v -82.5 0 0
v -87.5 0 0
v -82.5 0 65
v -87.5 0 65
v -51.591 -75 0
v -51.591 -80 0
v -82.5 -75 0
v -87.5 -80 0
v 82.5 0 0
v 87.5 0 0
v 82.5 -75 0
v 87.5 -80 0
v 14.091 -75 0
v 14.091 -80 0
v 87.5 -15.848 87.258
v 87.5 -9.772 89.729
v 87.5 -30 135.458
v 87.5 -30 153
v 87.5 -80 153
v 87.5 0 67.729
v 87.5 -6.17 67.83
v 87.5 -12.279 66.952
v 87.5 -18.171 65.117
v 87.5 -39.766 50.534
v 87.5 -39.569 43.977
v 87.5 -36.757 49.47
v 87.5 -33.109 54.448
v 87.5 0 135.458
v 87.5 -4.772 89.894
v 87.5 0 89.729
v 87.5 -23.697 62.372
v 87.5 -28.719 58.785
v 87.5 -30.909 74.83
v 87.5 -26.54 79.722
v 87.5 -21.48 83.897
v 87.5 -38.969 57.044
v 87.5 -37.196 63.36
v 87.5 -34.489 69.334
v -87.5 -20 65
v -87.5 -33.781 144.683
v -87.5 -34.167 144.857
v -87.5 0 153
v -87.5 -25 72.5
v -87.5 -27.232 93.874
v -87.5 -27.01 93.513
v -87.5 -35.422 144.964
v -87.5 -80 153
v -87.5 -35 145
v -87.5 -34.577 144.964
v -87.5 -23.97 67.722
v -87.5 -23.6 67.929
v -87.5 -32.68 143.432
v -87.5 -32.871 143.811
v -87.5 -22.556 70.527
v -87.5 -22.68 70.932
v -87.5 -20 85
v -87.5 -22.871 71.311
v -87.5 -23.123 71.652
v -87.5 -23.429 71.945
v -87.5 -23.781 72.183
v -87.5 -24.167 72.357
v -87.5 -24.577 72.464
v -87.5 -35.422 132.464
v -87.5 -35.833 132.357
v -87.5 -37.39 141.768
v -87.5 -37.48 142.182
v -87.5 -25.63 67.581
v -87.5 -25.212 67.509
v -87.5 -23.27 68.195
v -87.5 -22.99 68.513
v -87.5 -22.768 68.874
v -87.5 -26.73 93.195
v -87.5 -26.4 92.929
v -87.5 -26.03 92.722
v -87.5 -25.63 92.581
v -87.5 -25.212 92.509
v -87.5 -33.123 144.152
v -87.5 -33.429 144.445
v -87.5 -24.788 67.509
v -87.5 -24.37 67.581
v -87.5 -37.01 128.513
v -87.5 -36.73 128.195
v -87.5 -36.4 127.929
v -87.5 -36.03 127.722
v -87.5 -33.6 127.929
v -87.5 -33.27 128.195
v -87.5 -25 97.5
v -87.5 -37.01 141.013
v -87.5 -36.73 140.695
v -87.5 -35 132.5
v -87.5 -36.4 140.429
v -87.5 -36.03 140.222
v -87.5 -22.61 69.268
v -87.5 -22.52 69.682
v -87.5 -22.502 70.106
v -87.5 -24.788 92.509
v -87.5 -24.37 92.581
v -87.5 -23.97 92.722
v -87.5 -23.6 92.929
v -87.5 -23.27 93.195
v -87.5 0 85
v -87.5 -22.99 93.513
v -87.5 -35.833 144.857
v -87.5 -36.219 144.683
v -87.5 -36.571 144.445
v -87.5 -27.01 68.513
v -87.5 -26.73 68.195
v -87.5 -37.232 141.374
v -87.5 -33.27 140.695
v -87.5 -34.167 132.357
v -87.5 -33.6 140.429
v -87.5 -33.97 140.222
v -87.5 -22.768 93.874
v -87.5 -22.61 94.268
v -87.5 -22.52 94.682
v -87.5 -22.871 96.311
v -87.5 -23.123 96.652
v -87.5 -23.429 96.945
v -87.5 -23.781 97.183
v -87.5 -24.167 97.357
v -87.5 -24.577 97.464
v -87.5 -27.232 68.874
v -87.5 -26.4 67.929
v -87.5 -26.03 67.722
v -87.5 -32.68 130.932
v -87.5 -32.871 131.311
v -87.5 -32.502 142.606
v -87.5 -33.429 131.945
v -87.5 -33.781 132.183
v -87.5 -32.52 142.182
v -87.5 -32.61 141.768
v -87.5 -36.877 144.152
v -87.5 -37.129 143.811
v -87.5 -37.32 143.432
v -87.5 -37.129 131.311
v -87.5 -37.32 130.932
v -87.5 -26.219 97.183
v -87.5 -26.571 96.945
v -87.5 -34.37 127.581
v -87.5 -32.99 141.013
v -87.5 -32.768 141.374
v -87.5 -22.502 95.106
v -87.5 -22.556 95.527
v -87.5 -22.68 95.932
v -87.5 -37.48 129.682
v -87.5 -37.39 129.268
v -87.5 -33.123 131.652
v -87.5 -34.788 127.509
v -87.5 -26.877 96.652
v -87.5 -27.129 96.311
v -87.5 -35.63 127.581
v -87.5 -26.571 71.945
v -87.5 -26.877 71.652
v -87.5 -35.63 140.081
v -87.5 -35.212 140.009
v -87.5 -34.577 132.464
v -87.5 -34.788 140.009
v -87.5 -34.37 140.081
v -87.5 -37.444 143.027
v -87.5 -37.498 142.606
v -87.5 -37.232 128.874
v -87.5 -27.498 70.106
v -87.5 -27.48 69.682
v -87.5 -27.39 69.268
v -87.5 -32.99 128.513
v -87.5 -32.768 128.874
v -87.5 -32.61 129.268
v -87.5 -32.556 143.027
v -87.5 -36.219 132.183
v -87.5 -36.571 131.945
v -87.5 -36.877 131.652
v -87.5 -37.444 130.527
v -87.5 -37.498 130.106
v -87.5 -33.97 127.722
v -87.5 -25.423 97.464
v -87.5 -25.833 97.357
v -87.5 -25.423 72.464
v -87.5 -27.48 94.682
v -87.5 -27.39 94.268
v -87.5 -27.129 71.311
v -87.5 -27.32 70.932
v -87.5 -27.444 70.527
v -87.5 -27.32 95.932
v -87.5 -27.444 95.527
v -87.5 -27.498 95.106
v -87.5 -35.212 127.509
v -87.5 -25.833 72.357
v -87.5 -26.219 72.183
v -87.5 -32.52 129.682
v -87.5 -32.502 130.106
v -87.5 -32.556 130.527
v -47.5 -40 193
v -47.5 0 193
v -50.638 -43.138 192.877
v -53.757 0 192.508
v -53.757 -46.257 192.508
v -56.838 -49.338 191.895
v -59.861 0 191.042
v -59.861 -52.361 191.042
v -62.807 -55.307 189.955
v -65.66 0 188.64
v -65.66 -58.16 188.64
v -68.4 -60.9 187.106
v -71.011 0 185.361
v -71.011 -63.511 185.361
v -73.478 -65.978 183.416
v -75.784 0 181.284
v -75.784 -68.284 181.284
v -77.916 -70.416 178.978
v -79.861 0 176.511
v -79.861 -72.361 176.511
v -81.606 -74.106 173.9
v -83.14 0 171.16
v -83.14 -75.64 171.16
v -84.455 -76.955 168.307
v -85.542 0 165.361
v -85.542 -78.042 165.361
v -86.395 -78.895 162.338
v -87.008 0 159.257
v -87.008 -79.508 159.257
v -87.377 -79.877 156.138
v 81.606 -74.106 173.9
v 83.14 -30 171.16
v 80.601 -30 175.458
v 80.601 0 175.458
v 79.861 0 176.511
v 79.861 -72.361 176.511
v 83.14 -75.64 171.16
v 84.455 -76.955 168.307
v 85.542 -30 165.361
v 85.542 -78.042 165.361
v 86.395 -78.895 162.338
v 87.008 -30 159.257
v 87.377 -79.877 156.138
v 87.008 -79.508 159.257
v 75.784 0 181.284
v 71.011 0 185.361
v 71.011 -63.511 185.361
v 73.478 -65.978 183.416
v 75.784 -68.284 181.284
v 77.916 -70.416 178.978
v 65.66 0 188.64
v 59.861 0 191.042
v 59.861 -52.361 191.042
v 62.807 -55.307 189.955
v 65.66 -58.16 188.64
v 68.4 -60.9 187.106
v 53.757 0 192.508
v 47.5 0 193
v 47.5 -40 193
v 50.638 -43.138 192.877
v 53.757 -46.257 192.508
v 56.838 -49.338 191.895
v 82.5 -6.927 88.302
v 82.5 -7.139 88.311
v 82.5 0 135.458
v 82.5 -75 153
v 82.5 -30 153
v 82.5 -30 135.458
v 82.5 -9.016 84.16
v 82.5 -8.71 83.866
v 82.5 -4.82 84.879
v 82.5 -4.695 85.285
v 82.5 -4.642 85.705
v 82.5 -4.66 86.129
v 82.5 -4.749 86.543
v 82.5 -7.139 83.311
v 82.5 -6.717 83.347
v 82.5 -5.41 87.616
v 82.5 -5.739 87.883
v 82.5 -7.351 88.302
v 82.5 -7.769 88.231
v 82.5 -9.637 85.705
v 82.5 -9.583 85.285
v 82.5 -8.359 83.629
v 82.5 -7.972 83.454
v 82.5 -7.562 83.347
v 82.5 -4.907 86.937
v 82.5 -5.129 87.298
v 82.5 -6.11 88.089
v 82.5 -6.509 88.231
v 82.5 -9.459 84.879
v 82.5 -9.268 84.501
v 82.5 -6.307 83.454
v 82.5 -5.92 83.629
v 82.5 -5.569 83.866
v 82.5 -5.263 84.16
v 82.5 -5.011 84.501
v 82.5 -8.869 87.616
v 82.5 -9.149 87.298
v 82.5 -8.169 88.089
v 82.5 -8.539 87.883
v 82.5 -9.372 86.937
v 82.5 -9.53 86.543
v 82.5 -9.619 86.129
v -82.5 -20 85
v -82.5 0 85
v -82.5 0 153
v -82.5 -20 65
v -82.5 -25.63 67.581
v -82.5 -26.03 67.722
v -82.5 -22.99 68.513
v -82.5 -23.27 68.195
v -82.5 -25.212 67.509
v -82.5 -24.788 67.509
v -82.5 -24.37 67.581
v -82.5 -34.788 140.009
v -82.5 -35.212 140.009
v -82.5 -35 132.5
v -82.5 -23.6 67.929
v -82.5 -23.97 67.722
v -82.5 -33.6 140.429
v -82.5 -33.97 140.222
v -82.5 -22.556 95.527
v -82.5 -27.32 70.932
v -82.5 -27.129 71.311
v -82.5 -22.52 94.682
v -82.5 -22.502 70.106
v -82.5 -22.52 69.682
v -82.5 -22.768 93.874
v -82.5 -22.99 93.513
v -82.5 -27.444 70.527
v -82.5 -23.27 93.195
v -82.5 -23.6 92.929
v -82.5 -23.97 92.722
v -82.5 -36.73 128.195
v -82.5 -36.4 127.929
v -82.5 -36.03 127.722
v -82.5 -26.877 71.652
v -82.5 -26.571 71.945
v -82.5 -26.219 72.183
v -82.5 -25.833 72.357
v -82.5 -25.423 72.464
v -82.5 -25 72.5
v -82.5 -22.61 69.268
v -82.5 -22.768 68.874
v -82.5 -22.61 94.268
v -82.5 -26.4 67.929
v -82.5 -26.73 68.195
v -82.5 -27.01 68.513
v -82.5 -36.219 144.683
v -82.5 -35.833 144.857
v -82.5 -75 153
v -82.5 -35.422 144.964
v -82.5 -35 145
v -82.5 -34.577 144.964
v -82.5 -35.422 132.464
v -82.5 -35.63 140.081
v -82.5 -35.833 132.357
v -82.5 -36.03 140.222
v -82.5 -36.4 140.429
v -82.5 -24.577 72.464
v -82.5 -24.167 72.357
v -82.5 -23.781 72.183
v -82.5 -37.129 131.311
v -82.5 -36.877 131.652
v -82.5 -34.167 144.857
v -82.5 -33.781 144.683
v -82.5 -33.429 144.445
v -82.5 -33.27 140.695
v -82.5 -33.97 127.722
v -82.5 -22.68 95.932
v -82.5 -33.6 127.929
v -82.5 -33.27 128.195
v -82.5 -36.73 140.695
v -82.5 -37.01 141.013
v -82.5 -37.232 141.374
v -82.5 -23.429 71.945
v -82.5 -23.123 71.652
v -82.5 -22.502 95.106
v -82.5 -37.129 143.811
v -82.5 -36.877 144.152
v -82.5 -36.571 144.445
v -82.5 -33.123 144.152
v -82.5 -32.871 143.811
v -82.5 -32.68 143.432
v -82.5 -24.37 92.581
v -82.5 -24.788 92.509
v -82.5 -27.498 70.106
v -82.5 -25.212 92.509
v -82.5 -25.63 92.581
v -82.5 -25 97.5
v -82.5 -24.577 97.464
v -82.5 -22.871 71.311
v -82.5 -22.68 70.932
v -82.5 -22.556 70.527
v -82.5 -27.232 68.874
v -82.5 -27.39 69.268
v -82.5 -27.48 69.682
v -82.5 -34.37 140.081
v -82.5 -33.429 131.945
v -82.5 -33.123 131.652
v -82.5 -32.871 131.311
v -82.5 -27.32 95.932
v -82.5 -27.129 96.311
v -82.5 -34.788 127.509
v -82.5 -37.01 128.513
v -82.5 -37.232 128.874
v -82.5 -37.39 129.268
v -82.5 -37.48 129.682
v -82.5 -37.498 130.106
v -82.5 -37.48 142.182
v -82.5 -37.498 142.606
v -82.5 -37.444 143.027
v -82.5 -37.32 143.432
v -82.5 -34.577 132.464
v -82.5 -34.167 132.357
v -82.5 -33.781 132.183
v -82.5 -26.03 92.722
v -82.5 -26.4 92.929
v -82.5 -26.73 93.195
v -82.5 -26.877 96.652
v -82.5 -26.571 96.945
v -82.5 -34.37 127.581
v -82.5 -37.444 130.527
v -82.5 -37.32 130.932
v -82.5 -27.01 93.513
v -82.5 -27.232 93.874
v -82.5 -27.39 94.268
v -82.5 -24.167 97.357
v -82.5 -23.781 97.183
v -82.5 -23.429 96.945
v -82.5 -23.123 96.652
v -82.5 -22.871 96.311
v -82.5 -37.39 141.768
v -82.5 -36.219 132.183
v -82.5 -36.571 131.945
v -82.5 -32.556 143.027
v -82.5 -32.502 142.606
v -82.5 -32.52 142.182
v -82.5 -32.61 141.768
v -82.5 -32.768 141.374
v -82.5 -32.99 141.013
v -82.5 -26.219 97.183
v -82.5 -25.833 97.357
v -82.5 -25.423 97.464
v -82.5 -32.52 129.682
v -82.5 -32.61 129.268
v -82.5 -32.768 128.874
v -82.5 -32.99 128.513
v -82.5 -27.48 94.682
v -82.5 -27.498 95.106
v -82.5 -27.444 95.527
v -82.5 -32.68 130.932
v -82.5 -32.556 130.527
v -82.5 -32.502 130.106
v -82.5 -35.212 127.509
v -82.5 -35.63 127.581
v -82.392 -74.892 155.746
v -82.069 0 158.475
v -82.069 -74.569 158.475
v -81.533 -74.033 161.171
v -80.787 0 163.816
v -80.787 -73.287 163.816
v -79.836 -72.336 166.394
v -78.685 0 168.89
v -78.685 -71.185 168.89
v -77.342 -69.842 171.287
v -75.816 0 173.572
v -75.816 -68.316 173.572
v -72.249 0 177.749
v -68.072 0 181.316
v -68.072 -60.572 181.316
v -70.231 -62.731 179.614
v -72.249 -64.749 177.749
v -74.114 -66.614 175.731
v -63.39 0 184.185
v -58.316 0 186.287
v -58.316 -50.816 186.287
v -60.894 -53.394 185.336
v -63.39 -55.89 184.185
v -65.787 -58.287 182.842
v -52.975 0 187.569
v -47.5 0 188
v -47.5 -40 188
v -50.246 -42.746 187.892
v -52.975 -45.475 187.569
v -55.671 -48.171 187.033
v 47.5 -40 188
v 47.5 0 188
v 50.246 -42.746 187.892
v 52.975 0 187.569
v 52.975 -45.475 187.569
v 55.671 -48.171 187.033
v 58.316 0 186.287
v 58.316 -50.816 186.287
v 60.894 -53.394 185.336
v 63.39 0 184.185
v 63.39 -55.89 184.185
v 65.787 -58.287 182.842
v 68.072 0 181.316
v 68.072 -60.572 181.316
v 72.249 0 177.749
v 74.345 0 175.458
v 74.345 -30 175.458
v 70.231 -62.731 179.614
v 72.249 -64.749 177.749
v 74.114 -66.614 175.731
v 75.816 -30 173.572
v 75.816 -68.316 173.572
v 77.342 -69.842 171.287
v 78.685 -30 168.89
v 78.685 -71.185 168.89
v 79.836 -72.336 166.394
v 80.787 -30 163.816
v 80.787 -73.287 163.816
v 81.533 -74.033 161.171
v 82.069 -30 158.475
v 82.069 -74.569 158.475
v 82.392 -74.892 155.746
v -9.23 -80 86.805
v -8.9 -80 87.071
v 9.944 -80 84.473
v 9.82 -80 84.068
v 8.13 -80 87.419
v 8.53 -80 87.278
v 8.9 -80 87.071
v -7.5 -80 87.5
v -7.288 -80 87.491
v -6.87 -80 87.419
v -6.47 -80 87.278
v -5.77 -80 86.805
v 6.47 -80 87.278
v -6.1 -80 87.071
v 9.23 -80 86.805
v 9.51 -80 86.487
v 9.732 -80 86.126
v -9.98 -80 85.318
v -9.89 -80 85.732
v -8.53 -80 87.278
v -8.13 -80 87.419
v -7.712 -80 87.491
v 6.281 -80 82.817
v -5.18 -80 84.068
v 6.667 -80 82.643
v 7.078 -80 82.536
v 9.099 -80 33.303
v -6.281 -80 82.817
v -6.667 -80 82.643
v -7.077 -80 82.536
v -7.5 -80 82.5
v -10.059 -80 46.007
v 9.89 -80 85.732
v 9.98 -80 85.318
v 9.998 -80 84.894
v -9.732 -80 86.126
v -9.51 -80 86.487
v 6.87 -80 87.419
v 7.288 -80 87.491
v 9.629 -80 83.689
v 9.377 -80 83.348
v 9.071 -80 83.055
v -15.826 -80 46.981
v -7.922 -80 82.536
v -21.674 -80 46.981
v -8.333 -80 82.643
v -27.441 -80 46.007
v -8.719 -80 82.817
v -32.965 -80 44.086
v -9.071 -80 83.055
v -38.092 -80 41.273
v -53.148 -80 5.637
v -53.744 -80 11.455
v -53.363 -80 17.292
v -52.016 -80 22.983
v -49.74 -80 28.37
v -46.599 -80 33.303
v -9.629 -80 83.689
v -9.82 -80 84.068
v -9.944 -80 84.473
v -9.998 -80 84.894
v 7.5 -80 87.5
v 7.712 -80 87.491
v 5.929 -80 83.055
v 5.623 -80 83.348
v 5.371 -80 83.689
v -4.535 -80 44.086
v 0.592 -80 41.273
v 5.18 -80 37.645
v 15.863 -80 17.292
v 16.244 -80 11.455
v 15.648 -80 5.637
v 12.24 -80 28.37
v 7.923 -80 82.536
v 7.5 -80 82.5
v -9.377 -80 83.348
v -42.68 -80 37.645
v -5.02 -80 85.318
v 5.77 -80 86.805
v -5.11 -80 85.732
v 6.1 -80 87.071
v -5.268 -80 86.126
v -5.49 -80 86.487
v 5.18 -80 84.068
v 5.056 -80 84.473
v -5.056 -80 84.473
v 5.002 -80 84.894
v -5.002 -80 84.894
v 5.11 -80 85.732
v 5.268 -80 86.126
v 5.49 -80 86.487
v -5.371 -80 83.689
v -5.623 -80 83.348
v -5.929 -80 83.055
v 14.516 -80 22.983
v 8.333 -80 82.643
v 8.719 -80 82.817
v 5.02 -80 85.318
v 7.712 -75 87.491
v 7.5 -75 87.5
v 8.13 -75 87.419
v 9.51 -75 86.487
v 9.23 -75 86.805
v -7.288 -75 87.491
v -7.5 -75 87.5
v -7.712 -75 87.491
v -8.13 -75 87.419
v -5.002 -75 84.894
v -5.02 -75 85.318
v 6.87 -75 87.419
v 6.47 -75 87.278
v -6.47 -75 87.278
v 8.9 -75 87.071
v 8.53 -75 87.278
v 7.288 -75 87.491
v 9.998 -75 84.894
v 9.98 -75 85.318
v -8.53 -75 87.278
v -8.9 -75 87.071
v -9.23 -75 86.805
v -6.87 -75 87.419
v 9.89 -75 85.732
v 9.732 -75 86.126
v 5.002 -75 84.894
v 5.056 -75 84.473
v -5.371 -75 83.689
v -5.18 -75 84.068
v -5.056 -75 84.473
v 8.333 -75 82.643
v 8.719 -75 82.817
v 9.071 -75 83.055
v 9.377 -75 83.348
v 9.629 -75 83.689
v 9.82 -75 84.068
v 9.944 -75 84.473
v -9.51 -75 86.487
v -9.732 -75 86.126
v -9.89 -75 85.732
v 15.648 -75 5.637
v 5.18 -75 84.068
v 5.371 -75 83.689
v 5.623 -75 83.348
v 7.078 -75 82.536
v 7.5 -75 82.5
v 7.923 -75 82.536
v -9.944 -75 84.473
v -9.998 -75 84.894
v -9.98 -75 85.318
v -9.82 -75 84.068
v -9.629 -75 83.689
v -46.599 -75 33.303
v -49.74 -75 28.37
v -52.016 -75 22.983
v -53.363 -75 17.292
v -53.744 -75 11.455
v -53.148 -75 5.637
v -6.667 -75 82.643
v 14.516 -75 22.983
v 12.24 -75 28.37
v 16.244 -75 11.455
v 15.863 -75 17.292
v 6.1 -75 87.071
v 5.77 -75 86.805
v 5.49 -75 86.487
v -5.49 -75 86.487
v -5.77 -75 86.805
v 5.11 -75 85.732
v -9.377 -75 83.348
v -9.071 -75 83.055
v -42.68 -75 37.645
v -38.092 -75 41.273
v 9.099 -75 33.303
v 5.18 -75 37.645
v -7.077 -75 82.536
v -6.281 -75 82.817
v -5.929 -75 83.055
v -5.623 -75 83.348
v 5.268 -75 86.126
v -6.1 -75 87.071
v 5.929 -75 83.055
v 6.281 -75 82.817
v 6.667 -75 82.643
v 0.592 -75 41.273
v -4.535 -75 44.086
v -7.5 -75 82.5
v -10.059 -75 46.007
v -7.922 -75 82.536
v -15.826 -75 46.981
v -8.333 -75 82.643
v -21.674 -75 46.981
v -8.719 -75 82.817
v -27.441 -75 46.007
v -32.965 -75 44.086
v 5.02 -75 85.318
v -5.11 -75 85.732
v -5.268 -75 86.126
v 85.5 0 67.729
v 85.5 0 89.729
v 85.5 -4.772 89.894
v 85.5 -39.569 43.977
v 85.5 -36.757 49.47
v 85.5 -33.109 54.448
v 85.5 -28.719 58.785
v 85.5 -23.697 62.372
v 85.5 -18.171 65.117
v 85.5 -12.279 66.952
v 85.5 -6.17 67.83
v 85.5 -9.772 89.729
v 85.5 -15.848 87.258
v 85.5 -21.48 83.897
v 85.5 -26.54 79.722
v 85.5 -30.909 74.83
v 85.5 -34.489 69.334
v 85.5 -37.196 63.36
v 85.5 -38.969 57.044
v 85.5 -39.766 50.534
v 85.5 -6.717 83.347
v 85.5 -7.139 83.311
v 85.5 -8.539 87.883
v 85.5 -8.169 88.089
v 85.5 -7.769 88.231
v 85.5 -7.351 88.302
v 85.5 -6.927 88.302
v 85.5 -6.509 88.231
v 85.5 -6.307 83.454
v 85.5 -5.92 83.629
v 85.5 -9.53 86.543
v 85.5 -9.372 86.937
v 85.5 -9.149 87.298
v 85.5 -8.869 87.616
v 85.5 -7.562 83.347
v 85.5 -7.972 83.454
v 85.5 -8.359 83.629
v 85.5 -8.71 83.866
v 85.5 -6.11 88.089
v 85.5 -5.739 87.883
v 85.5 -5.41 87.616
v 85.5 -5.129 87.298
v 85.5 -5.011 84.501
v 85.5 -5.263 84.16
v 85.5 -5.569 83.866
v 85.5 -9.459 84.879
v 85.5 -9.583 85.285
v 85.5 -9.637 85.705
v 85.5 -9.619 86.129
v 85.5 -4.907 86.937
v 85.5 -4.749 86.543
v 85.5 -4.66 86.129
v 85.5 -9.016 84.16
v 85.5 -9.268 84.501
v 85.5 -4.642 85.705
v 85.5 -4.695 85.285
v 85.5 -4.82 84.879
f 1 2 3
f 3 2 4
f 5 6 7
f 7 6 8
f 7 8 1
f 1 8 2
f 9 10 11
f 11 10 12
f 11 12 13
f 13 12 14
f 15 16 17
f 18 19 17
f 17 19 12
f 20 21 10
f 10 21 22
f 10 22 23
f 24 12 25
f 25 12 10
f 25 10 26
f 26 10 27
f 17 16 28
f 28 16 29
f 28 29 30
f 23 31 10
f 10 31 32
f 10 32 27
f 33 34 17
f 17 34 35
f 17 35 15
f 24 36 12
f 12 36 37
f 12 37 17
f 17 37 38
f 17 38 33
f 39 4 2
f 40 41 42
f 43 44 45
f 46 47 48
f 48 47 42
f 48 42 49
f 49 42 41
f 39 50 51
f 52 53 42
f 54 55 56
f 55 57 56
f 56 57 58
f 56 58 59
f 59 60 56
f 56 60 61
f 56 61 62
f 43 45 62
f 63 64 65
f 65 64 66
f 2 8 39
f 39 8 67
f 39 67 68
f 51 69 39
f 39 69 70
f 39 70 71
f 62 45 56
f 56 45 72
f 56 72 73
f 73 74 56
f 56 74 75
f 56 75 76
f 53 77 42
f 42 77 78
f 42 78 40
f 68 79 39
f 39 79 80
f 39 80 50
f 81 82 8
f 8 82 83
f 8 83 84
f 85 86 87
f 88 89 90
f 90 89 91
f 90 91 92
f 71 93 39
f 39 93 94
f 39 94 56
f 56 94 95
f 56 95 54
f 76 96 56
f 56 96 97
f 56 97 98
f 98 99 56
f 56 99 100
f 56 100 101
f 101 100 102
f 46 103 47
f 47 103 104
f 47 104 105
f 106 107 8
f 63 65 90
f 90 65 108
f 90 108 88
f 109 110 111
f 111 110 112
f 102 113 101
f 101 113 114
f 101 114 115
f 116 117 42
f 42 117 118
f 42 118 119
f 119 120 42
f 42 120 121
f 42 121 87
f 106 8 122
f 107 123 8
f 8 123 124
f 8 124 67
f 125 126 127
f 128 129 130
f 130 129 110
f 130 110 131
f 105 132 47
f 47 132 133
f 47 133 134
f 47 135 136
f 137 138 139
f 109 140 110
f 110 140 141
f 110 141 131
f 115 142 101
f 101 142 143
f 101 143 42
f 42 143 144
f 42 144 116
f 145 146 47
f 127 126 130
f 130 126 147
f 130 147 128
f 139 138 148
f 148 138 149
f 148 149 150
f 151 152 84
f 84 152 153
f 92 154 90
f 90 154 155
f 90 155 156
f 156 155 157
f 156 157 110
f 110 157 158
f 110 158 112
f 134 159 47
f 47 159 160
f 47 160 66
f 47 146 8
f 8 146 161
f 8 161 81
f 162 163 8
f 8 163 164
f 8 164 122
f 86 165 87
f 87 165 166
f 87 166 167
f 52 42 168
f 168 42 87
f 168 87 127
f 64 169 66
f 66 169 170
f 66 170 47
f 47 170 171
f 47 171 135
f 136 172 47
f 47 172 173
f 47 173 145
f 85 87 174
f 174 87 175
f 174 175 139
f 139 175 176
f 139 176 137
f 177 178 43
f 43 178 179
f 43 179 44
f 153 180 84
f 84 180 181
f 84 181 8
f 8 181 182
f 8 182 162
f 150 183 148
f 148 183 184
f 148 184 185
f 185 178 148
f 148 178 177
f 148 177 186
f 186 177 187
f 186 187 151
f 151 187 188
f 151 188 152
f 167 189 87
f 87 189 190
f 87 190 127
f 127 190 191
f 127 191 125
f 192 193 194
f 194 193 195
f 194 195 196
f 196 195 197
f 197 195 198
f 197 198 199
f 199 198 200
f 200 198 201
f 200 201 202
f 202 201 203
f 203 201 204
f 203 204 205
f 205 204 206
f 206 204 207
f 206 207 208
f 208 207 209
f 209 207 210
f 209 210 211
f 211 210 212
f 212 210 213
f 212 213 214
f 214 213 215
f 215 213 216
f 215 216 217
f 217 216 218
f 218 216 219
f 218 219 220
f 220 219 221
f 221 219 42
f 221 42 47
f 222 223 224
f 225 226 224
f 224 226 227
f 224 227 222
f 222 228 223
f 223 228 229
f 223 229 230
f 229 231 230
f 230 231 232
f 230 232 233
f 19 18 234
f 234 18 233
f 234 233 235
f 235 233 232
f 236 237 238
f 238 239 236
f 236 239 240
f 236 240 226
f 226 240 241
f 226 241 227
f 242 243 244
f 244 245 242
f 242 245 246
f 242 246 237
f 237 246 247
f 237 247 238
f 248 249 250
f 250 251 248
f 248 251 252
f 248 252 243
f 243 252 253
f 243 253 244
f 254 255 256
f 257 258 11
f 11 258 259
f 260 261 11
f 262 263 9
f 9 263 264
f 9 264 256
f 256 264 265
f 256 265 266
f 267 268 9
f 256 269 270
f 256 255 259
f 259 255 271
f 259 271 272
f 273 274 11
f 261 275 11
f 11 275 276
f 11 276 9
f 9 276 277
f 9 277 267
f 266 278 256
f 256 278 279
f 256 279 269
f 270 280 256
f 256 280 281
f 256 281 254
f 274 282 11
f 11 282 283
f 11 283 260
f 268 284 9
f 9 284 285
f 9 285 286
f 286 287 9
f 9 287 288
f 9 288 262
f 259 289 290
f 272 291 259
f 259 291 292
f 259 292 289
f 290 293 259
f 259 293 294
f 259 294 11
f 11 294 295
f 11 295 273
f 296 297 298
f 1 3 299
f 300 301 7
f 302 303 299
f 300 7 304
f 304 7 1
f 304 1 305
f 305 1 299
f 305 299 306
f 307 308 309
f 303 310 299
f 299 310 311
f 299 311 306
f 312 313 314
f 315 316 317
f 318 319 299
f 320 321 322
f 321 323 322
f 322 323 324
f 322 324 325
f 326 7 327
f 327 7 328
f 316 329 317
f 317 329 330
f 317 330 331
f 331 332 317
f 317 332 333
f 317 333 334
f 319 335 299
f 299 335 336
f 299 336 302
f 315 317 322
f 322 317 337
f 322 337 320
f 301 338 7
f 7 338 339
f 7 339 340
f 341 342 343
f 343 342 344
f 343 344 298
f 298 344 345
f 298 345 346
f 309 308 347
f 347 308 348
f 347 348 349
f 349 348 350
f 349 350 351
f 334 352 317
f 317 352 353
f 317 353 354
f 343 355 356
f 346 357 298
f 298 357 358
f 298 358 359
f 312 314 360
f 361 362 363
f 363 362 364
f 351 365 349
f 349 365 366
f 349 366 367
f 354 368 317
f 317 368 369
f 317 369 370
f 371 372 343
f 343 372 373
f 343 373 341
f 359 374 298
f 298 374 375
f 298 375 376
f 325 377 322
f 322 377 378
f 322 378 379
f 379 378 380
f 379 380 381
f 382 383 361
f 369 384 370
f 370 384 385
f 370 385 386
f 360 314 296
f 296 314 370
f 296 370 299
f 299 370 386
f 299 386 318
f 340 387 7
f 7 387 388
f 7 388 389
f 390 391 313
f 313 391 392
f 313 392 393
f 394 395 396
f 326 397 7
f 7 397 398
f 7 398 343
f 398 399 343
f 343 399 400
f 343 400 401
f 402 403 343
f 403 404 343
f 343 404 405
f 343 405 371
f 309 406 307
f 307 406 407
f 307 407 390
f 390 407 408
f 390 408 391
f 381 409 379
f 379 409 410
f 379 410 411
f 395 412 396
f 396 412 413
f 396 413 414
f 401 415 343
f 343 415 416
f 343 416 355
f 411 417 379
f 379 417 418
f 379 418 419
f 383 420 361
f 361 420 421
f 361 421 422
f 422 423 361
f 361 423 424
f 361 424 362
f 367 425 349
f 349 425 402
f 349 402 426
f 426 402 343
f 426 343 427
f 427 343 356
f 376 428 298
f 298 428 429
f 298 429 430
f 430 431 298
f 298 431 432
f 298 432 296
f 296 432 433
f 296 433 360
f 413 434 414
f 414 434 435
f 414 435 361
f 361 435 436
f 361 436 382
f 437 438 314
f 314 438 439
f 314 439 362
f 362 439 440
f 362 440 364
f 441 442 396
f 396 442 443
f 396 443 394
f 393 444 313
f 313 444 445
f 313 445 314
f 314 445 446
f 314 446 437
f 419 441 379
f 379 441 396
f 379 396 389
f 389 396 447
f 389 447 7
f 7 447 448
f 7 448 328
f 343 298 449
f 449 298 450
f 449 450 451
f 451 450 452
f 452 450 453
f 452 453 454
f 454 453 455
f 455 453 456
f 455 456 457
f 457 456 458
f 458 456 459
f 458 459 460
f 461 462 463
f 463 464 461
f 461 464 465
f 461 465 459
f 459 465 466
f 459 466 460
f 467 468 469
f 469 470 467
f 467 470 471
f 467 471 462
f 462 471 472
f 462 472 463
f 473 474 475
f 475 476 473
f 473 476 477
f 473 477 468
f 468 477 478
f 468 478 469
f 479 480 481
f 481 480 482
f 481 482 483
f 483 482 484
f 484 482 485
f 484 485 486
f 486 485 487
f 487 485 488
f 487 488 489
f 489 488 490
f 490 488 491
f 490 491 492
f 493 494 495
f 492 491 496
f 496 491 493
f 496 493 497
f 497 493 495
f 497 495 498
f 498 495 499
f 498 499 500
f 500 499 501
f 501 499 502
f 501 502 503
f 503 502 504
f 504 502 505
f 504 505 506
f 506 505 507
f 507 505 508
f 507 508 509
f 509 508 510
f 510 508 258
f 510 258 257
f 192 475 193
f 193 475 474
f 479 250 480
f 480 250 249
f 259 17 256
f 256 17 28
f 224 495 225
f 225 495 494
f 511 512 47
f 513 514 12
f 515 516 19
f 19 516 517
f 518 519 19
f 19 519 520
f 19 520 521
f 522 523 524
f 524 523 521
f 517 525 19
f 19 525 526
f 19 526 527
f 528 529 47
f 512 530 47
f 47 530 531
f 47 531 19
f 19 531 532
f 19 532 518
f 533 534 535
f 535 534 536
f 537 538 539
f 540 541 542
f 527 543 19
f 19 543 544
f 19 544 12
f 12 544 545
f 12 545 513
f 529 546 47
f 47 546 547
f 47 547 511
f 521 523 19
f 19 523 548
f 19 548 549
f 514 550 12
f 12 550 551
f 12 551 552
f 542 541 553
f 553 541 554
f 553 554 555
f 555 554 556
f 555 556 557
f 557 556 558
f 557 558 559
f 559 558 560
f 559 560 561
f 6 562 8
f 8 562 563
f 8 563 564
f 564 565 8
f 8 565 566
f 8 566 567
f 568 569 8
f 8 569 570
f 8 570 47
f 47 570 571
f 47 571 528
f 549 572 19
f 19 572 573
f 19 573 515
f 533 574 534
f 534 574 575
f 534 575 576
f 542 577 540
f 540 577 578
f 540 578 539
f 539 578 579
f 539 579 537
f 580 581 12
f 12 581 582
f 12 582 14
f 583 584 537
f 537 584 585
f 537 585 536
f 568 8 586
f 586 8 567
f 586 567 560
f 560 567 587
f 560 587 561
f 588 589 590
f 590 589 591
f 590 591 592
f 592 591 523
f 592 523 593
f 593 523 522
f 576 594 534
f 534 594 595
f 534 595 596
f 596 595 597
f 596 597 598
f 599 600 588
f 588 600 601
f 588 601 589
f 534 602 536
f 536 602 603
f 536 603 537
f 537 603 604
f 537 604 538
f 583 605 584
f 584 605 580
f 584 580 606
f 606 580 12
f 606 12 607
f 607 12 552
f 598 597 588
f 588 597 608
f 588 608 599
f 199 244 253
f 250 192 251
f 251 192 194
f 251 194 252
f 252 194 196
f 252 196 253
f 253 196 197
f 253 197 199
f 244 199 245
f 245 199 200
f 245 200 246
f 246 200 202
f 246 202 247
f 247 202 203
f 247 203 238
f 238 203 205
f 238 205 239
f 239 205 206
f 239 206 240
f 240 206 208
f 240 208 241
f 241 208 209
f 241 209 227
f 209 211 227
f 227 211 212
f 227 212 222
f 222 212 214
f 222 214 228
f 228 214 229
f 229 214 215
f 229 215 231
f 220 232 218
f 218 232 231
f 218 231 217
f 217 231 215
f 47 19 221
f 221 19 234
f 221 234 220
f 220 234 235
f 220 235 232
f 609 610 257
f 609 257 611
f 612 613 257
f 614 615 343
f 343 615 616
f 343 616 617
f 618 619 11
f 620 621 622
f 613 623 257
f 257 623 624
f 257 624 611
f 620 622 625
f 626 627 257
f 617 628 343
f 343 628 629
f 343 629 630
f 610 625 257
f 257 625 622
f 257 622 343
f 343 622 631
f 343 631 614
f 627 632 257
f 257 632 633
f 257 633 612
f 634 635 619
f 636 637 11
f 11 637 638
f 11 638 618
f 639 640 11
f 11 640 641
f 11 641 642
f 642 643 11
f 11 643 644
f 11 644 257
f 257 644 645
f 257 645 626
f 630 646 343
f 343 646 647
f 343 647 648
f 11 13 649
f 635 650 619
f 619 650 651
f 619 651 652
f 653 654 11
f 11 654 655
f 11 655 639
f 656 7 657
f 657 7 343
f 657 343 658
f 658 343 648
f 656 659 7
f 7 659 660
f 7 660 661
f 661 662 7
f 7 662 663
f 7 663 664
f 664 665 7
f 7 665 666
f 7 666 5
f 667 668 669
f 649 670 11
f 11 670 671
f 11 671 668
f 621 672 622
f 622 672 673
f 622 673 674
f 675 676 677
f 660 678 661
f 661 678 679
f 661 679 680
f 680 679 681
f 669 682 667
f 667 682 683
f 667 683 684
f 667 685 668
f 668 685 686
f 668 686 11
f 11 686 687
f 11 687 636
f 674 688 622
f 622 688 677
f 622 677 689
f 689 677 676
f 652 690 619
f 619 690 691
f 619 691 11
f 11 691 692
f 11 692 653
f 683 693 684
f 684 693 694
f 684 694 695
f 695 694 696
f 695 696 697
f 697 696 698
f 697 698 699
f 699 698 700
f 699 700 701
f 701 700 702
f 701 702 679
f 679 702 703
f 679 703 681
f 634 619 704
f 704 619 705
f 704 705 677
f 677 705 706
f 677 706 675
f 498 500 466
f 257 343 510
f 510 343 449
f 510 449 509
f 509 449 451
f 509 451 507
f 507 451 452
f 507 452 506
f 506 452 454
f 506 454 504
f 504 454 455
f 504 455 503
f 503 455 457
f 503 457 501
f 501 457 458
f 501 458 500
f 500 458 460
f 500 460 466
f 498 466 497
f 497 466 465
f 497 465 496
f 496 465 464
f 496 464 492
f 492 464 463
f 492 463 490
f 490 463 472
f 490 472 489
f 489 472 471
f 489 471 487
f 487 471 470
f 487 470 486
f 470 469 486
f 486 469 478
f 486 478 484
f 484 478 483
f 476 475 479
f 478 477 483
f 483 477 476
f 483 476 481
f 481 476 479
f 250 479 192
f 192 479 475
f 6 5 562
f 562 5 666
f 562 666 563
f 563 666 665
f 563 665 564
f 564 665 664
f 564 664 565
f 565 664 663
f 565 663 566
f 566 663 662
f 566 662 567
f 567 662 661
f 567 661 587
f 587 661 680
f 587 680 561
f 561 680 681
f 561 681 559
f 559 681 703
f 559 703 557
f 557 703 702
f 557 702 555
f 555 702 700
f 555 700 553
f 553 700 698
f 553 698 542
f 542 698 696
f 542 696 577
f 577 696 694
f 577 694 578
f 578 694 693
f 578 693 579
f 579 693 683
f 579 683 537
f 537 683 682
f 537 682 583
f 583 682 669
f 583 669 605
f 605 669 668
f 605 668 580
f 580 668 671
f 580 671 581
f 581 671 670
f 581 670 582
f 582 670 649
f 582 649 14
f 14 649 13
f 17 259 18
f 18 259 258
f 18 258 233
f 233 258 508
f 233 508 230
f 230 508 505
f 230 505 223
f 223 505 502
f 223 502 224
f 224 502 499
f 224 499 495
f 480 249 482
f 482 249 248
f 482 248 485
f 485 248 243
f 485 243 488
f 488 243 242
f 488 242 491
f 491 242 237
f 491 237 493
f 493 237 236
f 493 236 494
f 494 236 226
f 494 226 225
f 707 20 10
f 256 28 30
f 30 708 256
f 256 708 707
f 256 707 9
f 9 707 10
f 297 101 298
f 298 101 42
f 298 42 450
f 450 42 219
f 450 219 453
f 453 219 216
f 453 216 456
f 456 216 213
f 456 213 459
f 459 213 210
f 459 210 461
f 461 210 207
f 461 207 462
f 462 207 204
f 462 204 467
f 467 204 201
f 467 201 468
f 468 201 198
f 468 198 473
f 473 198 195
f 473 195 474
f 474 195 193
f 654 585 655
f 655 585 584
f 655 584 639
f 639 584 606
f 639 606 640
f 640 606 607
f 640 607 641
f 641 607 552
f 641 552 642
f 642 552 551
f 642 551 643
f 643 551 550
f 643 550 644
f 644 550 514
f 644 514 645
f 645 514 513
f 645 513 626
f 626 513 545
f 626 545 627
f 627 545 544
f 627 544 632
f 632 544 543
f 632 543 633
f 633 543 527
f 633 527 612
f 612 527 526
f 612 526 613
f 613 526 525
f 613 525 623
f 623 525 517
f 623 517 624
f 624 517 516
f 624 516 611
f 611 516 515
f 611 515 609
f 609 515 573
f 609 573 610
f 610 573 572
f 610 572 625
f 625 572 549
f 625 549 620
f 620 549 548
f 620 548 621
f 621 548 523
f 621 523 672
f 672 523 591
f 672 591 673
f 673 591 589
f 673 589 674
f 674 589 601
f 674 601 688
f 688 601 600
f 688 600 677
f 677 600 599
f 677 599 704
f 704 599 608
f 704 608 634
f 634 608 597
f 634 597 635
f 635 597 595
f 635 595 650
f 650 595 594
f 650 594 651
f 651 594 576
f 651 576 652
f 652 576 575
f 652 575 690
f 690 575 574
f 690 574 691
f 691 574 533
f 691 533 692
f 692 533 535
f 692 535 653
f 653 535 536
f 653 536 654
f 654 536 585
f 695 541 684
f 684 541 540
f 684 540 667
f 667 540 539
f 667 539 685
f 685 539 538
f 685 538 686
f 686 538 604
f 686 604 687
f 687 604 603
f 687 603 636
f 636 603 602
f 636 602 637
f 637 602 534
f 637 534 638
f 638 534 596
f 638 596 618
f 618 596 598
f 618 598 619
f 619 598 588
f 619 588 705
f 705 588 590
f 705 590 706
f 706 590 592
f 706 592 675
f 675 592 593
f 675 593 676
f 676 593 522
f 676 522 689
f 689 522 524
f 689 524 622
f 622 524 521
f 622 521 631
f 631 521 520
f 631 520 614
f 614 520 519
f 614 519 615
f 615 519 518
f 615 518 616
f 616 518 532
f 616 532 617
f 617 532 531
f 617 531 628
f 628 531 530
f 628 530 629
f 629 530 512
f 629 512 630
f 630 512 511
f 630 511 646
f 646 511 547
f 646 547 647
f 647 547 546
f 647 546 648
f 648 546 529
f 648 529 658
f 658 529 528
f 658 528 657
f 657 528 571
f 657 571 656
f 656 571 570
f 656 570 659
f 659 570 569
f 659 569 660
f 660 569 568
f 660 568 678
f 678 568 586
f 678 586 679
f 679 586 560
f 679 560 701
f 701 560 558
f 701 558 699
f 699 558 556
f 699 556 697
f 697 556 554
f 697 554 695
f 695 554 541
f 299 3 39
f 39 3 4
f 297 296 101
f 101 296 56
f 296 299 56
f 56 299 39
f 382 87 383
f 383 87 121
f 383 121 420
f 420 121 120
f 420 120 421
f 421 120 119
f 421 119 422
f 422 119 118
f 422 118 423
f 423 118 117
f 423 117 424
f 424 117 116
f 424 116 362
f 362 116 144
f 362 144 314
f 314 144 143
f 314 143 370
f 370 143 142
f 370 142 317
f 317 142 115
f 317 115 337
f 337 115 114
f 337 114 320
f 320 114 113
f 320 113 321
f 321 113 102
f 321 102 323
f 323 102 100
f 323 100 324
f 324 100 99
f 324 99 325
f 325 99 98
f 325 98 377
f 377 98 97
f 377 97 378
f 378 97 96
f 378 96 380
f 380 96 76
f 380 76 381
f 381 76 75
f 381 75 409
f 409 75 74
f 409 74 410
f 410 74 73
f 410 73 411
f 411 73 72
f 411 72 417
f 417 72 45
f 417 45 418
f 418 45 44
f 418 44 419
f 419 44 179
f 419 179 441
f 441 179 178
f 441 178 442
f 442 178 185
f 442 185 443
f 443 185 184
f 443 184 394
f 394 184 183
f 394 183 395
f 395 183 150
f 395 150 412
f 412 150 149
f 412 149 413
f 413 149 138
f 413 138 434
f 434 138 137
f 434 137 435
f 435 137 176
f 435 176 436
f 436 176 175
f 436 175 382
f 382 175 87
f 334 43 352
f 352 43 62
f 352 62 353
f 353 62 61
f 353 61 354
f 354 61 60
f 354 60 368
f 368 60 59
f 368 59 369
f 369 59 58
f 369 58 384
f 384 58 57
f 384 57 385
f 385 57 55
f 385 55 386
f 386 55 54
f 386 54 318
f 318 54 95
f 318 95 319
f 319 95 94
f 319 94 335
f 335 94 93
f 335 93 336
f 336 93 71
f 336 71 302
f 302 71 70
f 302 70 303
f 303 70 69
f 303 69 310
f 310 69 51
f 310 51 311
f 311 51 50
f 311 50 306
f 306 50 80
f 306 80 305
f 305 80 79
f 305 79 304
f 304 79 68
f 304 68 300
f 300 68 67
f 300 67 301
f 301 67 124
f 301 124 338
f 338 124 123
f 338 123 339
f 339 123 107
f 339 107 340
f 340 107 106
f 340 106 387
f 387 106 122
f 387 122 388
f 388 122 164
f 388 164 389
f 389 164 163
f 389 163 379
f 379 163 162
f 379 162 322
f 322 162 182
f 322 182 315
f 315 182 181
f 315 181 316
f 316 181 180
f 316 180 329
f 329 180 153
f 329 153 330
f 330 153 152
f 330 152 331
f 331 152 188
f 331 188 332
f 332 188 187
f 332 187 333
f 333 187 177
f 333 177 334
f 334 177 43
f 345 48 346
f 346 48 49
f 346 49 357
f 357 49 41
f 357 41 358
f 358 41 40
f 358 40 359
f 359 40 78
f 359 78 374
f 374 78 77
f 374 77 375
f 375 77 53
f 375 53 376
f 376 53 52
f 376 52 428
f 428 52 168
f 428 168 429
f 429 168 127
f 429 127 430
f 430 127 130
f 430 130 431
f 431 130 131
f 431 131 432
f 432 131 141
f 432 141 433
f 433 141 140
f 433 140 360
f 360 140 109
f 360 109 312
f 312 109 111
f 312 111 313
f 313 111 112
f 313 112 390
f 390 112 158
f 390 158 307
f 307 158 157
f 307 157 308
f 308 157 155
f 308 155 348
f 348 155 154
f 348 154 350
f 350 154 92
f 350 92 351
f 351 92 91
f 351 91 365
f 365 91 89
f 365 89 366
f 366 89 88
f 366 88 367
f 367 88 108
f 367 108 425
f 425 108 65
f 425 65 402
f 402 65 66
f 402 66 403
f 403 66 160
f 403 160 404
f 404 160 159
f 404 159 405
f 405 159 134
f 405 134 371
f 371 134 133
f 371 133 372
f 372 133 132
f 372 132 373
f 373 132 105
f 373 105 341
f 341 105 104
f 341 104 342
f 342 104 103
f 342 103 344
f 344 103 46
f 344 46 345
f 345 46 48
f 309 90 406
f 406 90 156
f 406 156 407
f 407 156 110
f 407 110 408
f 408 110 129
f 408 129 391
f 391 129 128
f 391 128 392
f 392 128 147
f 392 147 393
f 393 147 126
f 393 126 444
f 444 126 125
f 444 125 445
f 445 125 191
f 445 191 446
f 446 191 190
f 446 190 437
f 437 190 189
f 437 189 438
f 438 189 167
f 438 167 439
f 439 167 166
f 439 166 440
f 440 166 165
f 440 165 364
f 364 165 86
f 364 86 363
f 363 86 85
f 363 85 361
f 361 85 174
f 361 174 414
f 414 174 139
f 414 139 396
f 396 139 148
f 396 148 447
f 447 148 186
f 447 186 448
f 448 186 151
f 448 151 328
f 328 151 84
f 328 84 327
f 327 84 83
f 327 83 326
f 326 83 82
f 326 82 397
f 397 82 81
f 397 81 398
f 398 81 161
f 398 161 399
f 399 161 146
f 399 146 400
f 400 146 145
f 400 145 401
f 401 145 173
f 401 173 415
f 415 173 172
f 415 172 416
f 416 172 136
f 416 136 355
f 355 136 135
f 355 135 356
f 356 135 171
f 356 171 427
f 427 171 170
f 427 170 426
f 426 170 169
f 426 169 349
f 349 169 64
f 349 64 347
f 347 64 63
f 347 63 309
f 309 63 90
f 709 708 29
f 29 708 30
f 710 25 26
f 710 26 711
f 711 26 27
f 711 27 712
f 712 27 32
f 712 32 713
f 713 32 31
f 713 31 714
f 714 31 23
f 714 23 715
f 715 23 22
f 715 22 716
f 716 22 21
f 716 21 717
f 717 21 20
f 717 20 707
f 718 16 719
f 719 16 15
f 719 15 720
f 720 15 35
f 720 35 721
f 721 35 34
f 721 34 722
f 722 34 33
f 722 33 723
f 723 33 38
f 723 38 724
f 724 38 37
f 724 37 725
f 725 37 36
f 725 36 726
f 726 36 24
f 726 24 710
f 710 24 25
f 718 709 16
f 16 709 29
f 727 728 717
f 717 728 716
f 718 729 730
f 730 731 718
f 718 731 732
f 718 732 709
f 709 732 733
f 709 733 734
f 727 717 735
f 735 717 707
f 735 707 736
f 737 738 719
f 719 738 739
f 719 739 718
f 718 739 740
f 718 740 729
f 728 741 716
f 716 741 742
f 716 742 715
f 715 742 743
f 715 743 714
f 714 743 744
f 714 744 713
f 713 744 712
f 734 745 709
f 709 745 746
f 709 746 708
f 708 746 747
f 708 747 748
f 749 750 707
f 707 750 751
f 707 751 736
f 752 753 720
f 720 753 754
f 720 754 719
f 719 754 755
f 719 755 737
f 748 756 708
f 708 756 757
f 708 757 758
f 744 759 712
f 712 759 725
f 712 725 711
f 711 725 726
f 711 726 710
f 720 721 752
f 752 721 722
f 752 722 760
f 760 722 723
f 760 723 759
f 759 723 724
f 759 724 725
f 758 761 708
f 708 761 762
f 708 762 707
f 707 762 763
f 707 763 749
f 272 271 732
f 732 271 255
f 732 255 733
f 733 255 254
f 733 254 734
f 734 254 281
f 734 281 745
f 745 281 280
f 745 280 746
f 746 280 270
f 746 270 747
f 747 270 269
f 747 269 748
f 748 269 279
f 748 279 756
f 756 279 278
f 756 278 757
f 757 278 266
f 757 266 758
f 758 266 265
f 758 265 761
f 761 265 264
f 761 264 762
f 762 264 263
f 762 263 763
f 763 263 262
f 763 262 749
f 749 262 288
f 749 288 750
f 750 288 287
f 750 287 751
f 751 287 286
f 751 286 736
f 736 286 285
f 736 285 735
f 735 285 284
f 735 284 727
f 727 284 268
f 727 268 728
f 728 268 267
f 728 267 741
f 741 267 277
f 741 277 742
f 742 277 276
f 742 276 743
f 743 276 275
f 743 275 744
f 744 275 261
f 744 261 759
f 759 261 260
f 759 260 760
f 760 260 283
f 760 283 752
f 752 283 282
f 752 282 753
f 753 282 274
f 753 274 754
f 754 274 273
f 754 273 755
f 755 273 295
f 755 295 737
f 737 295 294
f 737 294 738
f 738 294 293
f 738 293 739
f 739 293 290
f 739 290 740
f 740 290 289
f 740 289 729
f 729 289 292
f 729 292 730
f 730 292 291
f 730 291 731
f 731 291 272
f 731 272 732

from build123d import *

# Parameters (mm, degrees)
SKETCH_1_W           = 175
SKETCH_1_H           = 160
EXTRUDE_1_DEPTH      = 193
FILLET_8_R           = 40
SHELL_2_T            = -5
SKETCH_9_W           = 95
SKETCH_9_H           = 80
CUT_EXTRUDE_3_DEPTH  = 10
SKETCH_10_R          = 35
CUT_EXTRUDE_4_DEPTH  = 160
SKETCH_12_W          = 40
SKETCH_12_H          = 60
CUT_EXTRUDE_5_DEPTH  = 20
CUT_EXTRUDE_6_DEPTH  = 80
SKETCH_15_R          = 2.5
CUT_EXTRUDE_8_DEPTH  = 5
SKETCH_17_R          = 2.5
SKETCH_17_W          = 20
SKETCH_17_H          = 20
CUT_EXTRUDE_10_DEPTH = 5
CUT_EXTRUDE_11_DEPTH = 2
SKETCH_20_R          = 2.5
CUT_EXTRUDE_13_DEPTH = 5


with BuildPart() as part:
    # 草圖1 → 填料-伸長1 (new body)
    with BuildSketch(Plane.XY):
        Rectangle(SKETCH_1_W, SKETCH_1_H)
    extrude(amount=EXTRUDE_1_DEPTH)

    # 圓角8
    fillet_8_edges = [part.edges().sort_by_distance(p)[0] for p in [
        (-87.5, 0, 193),
        (0, -80, 193),
        (87.5, 0, 193),
        (0, 80, 193),
    ]]
    fillet(fillet_8_edges, radius=FILLET_8_R)

    # 薄殼2
    shell_2_openings = [part.faces().sort_by_distance(p)[0] for p in [
        (0, 0, 0),
    ]]
    offset(amount=SHELL_2_T, openings=shell_2_openings)

    # 草圖9 → 除料-伸長3 (cut)
    with BuildSketch(Plane.XY.offset(193)):
        Rectangle(SKETCH_9_W, SKETCH_9_H)
    extrude(amount=-CUT_EXTRUDE_3_DEPTH, mode=Mode.SUBTRACT)

    # 草圖10 → 除料-伸長4 (cut)
    with BuildSketch(Plane(origin=(0, 80, 0), x_dir=(1, 0, 0), z_dir=(0, 1, 0))):
        with Locations((-18.75, -12.103072957)):
            Circle(SKETCH_10_R)
    extrude(amount=-CUT_EXTRUDE_4_DEPTH, mode=Mode.SUBTRACT)

    # 草圖12 → 除料-伸長5 (cut)
    with BuildSketch(Plane(origin=(90, 0, 0), x_dir=(0, 0, -1), z_dir=(1, 0, 0))):
        with Locations((-155.457670656, 0)):
            Rectangle(SKETCH_12_W, SKETCH_12_H)
    extrude(amount=-CUT_EXTRUDE_5_DEPTH, mode=Mode.SUBTRACT)

    # 草圖4 → 除料-伸長6 (cut)
    with BuildSketch(Plane(origin=(0, 0, 0), x_dir=(1, 0, 0), z_dir=(0, 1, 0))):
        Polygon((0, -200), (-165, -200), (-165, 0), (110, 0), (110, -200), align=None)
    extrude(amount=CUT_EXTRUDE_6_DEPTH, mode=Mode.SUBTRACT)

    # 草圖15 → 除料-伸長8 (cut)
    with BuildSketch(Plane(origin=(0, -80, 0), x_dir=(1, 0, 0), z_dir=(0, 1, 0))):
        with Locations(Location((-7.5, -85, 0), (0, 0, 270))):
            Circle(SKETCH_15_R)
        with Locations(Location((7.5, -85, 0), (0, 0, 270))):
            Circle(SKETCH_15_R)
    extrude(amount=CUT_EXTRUDE_8_DEPTH, mode=Mode.SUBTRACT)

    # 草圖17 → 除料-伸長10 (cut)
    with BuildSketch(Plane.ZY.offset(87.5)):
        with Locations((130, -35)):
            Circle(SKETCH_17_R)
        with Locations((142.5, -35)):
            Circle(SKETCH_17_R)
        with Locations((70, -25)):
            Circle(SKETCH_17_R)
        with Locations((95, -25)):
            Circle(SKETCH_17_R)
        with Locations((75, -10)):
            Rectangle(SKETCH_17_W, SKETCH_17_H)
    extrude(amount=-CUT_EXTRUDE_10_DEPTH, mode=Mode.SUBTRACT)

    # 草圖18 → 除料-伸長11 (cut)
    with BuildSketch(Plane(origin=(87.5, 0, 0), x_dir=(0, 0, -1), z_dir=(1, 0, 0))):
        with BuildLine():
            Line((-89.728835328, 0), (-67.728835328, 0))
            ThreePointArc((-67.728835328, 0), (-62.3717018, -23.697451199), (-43.97726554, -39.569211896))
            ThreePointArc((-43.97726554, -39.569211896), (-72.150234213, -32.803686073), (-89.728835328, -9.771506706))
            Line((-89.728835328, -9.771506706), (-89.893994181, -4.771506706))
            Line((-89.893994181, -4.771506706), (-89.728835328, 0))
        make_face()
    extrude(amount=-CUT_EXTRUDE_11_DEPTH, mode=Mode.SUBTRACT)

    # 草圖20 → 除料-伸長13 (cut)
    with BuildSketch(Plane(origin=(85.5, 0, 0), x_dir=(0, 0, -1), z_dir=(1, 0, 0))):
        with Locations((-85.811414754, -7.139379624)):
            Circle(SKETCH_20_R)
    extrude(amount=-CUT_EXTRUDE_13_DEPTH, mode=Mode.SUBTRACT)


solid = part.part
